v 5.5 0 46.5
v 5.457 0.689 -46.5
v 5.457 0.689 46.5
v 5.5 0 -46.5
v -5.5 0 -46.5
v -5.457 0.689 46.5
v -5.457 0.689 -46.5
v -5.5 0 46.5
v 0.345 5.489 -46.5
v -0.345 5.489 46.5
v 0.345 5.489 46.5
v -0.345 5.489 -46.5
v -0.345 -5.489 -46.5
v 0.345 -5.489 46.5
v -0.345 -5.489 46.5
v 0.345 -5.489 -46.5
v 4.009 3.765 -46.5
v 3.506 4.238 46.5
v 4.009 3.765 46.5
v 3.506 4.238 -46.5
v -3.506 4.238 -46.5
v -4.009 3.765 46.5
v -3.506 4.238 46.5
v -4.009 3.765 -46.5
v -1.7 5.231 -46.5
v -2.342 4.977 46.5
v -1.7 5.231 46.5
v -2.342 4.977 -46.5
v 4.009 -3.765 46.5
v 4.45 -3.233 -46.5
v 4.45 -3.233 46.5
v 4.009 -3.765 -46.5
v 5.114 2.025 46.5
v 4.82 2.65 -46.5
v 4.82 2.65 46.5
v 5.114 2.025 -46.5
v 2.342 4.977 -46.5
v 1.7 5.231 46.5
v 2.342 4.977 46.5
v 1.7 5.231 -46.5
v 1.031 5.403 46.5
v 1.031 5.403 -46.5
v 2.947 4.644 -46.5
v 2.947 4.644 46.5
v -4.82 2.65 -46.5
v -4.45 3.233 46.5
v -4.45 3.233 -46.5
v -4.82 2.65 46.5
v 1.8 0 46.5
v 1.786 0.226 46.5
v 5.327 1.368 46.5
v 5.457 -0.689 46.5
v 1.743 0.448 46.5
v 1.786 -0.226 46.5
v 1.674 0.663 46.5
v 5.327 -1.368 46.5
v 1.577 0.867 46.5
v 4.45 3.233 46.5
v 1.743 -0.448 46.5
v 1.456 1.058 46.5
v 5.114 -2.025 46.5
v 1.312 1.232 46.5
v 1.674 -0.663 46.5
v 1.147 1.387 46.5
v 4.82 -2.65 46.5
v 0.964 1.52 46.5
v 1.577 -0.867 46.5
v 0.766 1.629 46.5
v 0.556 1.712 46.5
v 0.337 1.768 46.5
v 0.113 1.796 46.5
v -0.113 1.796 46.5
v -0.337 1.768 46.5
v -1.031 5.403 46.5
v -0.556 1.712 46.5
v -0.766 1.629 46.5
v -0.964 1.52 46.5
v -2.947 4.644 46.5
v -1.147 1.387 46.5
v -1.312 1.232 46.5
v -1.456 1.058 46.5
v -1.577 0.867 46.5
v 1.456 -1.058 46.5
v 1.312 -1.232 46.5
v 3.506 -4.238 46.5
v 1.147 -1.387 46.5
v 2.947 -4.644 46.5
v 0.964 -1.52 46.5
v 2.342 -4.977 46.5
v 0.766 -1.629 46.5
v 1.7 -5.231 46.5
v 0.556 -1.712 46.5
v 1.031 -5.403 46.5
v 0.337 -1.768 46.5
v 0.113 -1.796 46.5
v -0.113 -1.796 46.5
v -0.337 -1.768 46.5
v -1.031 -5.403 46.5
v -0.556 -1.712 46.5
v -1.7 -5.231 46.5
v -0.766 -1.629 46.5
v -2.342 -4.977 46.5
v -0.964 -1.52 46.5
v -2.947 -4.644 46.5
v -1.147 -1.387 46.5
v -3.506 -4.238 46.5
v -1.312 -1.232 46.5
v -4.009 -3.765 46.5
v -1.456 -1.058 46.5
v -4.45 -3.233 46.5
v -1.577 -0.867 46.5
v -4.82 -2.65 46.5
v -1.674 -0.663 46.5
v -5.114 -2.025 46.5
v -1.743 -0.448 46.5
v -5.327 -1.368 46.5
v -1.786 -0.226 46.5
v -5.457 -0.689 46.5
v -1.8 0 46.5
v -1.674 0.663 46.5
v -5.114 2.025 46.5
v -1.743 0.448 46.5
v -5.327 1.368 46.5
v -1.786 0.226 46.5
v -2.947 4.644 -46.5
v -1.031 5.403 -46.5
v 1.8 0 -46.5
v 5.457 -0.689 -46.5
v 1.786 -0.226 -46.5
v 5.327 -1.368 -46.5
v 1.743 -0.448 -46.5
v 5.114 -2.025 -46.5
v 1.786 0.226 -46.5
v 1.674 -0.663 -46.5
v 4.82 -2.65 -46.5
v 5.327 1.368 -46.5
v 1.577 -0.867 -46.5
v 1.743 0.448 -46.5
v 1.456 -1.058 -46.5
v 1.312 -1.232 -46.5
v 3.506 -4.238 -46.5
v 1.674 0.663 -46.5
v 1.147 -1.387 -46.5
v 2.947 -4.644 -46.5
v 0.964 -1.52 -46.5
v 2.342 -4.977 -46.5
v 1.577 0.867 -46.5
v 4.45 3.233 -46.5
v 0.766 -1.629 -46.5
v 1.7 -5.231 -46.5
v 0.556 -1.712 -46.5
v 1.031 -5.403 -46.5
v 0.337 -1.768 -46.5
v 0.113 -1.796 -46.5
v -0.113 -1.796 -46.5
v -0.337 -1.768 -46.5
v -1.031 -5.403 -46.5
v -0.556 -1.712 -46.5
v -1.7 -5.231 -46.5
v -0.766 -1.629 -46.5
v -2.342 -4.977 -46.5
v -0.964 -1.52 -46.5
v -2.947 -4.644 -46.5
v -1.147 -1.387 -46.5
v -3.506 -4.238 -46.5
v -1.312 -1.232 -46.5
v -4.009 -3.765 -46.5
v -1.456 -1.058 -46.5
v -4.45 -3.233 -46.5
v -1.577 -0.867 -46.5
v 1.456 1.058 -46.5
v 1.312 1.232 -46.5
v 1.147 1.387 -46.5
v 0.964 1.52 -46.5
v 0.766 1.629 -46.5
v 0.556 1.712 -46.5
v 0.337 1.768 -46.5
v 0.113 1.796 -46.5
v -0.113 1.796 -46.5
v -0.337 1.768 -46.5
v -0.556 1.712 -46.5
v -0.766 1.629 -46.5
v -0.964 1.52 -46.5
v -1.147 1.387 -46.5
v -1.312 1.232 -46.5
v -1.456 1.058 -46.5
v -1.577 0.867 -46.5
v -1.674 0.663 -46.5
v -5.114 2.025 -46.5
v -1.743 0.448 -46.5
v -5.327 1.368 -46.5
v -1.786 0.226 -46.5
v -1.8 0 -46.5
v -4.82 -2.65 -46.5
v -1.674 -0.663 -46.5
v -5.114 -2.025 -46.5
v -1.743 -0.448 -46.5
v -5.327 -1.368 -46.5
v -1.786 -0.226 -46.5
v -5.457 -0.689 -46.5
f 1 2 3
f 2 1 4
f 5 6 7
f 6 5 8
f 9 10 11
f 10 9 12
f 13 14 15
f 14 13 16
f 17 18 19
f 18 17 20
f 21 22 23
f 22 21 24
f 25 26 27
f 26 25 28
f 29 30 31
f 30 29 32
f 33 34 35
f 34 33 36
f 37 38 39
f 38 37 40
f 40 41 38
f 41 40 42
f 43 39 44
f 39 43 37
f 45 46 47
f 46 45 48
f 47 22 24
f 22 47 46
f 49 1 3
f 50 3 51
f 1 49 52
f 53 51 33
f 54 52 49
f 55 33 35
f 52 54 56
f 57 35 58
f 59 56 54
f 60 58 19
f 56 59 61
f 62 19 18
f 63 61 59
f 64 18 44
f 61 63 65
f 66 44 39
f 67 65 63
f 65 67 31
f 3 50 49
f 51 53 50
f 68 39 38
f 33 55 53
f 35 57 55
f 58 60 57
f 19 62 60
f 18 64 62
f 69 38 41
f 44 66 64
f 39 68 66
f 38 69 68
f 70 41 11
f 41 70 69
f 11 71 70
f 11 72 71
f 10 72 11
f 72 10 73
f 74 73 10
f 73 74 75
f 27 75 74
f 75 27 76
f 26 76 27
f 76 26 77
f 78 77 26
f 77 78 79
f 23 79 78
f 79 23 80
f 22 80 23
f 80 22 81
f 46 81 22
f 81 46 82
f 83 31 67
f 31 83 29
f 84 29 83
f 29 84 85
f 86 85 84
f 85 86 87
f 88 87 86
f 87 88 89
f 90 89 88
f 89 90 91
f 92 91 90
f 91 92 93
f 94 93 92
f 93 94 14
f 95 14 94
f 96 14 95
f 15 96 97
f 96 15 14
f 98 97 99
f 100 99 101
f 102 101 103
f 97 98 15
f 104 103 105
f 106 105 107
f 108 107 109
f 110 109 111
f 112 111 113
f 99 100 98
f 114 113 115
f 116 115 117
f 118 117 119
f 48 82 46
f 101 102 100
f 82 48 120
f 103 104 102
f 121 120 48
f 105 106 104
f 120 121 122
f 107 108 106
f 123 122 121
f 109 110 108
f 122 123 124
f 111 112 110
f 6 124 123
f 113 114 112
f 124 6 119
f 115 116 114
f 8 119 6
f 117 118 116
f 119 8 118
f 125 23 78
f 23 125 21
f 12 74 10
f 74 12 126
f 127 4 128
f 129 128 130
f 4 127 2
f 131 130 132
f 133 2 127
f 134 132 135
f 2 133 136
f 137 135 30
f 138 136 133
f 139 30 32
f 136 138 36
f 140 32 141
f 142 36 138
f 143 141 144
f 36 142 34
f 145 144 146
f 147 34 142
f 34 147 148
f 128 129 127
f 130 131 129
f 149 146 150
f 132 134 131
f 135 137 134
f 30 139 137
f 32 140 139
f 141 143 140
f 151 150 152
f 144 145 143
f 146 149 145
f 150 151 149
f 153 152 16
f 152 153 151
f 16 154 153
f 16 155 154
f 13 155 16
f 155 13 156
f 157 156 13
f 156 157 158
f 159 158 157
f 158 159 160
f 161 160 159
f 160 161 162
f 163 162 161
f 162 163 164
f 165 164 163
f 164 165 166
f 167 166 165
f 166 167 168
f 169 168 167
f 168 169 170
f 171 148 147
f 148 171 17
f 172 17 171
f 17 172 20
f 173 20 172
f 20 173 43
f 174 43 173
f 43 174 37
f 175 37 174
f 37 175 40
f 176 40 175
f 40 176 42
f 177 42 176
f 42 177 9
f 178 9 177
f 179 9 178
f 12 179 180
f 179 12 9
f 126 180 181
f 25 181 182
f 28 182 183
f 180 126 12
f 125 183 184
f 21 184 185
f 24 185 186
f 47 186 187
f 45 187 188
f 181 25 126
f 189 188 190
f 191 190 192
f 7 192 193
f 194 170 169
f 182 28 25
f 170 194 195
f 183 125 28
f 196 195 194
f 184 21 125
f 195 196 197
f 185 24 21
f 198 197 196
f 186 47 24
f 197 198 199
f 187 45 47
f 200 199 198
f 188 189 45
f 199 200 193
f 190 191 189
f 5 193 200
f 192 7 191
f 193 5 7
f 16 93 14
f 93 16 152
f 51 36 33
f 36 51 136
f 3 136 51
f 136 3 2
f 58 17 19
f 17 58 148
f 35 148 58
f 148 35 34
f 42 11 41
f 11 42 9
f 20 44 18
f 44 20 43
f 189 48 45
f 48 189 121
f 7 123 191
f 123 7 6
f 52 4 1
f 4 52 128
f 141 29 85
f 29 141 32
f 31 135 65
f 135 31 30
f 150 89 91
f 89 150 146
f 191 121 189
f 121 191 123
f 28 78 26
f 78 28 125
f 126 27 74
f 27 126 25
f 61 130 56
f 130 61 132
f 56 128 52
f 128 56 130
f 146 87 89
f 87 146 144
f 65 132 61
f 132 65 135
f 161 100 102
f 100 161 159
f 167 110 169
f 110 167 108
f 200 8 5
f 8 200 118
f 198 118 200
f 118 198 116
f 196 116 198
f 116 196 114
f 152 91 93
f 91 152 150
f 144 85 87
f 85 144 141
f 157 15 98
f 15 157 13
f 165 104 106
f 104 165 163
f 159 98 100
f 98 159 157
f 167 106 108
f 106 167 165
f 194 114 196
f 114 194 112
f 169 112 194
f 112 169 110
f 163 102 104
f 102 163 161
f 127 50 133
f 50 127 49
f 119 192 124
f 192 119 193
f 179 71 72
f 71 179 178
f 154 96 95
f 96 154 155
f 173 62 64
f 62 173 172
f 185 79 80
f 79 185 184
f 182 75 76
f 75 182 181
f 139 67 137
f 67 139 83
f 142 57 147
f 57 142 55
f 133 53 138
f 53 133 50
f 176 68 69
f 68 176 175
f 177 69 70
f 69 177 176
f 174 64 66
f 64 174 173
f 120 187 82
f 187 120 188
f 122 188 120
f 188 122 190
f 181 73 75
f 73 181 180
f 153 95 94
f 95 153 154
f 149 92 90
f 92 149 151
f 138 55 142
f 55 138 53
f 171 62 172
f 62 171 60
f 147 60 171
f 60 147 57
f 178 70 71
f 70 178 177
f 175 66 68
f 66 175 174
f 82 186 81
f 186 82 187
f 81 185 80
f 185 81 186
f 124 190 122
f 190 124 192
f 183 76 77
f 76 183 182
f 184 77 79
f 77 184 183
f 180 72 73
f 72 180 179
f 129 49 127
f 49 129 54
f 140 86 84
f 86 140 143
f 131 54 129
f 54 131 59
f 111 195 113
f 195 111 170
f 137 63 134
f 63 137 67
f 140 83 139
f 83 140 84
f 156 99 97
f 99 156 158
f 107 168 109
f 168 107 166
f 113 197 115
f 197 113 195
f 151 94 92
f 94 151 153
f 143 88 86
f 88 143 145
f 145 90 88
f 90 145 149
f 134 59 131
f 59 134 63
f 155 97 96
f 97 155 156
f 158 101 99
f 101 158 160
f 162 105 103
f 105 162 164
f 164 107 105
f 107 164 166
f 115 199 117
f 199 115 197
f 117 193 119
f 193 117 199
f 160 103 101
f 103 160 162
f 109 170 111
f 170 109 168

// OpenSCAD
$fn = 50;


difference() {
	union() {
		translate(v = [0, 0, -46.5000000000]) {
			cylinder(h = 93, r = 5.5000000000);
		}
	}
	union() {
		translate(v = [0, 0, -100.0000000000]) {
			cylinder(h = 200, r = 1.8000000000);
		}
	}
}
